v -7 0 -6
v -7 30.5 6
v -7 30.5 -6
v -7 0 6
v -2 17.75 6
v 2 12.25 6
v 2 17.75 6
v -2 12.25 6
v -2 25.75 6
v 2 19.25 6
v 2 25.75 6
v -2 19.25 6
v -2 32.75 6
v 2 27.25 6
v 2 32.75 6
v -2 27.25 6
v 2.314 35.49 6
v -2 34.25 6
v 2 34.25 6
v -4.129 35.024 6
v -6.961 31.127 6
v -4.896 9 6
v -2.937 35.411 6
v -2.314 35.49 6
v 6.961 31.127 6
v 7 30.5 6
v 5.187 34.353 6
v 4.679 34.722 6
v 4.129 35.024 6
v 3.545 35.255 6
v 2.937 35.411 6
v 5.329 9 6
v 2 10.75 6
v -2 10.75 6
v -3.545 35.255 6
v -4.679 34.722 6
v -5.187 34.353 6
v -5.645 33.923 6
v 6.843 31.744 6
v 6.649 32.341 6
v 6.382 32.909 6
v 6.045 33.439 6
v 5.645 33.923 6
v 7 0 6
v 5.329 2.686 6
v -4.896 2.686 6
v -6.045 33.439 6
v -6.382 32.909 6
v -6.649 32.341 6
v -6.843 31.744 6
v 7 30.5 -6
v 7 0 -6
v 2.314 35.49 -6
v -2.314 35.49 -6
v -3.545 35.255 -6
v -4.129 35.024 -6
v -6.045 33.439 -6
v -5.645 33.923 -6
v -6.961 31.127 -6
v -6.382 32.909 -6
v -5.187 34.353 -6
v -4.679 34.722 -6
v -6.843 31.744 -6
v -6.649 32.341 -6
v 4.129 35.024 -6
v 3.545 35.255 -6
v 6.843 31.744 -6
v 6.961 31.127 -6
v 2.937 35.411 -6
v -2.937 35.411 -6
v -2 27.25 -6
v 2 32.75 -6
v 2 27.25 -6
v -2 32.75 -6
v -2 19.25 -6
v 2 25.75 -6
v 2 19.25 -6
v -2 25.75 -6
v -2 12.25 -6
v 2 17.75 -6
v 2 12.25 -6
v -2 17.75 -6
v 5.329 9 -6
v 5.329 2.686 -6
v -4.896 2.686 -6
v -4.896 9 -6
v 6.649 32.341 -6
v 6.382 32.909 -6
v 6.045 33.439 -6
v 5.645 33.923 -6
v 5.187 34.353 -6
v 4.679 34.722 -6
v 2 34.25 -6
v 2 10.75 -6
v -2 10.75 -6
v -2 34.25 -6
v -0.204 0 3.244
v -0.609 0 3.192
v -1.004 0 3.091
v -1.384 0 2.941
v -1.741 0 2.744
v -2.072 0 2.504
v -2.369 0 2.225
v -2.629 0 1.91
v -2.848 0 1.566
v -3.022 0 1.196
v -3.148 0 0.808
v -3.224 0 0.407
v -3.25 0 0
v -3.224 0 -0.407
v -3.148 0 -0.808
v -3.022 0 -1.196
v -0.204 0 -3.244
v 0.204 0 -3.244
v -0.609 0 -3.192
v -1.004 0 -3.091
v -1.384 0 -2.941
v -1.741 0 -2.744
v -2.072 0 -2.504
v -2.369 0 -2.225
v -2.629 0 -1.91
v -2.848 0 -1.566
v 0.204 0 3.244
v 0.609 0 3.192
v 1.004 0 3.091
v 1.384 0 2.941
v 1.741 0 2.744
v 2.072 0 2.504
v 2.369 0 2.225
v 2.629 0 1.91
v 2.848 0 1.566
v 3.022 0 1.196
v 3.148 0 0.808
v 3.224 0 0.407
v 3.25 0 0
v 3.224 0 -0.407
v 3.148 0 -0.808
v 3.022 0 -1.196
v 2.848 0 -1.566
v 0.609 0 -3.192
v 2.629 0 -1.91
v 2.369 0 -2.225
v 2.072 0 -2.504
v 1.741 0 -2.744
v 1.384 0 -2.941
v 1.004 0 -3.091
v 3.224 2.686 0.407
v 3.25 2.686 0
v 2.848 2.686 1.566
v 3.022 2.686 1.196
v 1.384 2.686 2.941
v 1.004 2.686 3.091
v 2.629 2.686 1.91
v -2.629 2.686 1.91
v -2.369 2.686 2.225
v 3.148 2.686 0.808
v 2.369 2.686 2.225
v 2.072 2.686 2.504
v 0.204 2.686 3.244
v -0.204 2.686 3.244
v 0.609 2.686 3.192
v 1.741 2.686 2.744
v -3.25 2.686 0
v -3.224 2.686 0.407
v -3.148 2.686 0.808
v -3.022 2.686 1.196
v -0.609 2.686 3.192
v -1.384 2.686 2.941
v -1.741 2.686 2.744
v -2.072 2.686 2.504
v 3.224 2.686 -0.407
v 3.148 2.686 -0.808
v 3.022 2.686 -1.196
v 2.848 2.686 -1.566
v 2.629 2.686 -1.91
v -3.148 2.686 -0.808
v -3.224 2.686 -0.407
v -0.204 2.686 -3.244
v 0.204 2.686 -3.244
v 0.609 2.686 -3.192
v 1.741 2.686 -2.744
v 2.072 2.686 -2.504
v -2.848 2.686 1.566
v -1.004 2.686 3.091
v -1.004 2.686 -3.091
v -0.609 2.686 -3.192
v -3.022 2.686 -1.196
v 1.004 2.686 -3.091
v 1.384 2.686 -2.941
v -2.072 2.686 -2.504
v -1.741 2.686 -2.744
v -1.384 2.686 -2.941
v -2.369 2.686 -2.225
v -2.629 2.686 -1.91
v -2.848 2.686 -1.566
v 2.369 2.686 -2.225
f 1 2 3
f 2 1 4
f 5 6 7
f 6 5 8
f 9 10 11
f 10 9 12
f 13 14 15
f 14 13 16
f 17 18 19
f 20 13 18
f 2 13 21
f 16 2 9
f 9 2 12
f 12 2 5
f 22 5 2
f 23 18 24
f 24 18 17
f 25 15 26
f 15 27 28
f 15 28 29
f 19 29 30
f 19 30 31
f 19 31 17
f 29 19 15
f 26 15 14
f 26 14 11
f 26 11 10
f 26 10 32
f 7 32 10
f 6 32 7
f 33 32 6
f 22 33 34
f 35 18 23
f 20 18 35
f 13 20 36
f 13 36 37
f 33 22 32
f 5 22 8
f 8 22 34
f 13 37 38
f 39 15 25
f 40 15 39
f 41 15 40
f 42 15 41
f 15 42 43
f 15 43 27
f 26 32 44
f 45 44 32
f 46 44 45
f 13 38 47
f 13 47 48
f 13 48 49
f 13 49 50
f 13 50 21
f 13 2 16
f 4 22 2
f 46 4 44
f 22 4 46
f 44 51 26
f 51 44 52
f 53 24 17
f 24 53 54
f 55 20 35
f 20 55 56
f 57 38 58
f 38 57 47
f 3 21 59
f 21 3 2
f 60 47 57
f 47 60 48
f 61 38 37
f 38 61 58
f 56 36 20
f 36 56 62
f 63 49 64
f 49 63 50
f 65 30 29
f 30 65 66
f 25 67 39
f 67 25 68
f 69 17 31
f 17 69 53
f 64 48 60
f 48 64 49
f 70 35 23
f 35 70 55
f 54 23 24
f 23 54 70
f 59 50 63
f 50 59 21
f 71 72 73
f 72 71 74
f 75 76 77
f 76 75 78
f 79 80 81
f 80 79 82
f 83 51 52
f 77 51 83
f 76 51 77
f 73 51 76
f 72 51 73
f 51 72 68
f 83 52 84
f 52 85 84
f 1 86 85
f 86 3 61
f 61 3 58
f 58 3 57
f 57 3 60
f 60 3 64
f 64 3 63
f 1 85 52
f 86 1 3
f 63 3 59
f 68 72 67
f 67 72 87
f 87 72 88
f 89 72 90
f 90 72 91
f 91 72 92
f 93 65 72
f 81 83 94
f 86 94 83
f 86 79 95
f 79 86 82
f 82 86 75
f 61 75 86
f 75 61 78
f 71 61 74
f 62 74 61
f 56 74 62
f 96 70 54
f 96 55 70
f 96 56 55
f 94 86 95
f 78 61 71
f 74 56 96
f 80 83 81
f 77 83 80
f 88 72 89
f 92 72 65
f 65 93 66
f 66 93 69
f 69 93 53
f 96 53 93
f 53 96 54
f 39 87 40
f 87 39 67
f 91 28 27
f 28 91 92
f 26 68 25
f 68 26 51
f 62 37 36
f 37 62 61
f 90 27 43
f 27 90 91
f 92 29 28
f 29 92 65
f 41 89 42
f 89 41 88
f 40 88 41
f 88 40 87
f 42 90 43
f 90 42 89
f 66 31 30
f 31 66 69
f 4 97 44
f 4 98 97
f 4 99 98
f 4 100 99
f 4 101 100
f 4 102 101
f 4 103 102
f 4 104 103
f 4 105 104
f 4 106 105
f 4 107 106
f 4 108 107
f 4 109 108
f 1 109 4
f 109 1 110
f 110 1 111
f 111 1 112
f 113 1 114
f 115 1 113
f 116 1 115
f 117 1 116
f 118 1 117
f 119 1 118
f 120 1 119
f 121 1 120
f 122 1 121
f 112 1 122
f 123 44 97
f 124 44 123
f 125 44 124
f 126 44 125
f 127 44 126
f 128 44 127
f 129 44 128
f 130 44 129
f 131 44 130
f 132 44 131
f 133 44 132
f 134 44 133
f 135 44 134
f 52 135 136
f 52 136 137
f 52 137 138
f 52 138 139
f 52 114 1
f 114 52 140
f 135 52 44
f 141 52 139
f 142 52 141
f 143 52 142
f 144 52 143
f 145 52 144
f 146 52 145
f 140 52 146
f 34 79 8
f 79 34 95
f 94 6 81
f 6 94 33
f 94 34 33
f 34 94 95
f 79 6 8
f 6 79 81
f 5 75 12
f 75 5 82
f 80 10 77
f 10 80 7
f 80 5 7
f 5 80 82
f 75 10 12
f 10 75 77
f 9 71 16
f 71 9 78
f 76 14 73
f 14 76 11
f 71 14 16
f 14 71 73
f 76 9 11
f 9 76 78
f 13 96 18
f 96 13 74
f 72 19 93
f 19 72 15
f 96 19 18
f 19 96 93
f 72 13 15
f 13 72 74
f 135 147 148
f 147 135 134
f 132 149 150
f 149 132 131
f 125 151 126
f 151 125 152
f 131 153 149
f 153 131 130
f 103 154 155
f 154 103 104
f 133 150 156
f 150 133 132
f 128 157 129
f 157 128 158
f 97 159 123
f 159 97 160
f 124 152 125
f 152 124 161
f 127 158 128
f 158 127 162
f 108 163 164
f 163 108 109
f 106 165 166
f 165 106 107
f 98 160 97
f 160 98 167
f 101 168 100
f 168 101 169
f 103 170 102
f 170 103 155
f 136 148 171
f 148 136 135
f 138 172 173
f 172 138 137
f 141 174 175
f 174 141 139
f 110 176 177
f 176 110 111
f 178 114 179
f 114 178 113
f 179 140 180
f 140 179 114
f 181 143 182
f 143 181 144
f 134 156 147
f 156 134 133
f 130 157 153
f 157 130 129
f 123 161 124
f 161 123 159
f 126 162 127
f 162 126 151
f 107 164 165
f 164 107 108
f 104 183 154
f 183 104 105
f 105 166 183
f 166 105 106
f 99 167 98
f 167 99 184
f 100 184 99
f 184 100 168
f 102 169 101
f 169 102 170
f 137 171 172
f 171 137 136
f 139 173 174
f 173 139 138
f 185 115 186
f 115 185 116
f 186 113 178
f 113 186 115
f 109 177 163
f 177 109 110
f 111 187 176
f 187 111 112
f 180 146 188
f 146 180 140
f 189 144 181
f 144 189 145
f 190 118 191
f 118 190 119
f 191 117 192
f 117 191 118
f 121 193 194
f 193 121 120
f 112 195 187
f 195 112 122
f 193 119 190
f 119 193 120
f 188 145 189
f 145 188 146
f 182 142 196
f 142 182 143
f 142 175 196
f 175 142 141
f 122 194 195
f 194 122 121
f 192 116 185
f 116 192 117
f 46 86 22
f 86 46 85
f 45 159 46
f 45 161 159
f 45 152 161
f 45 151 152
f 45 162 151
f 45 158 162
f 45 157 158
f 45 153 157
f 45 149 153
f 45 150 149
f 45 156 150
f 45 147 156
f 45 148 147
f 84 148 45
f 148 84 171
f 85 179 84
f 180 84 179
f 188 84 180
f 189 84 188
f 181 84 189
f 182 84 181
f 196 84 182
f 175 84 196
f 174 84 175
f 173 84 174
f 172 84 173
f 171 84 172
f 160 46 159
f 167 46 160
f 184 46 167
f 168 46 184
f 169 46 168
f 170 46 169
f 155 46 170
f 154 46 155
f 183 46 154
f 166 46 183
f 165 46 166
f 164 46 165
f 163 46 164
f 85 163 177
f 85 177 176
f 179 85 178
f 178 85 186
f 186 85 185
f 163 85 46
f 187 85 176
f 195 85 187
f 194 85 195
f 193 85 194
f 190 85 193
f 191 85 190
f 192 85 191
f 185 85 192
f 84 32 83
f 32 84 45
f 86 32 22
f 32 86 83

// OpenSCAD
$fn = 50;


difference() {
	union() {
		translate(v = [0, 21.0000000000, -6.0000000000]) {
			rotate(a = [0, 0, 0]) {
				hull() {
					translate(v = [-2.0000000000, 9.5000000000, 0]) {
						rotate(a = [0, 0, 0]) {
							translate(v = [0, 0, 0]) {
								rotate(a = [0, 0, 0]) {
									cylinder(h = 12, r = 5);
								}
							}
						}
					}
					translate(v = [2.0000000000, 9.5000000000, 0]) {
						rotate(a = [0, 0, 0]) {
							translate(v = [0, 0, 0]) {
								rotate(a = [0, 0, 0]) {
									cylinder(h = 12, r = 5);
								}
							}
						}
					}
					translate(v = [-2.0000000000, -9.5000000000, 0]) {
						rotate(a = [0, 0, 0]) {
							translate(v = [0, 0, 0]) {
								rotate(a = [0, 0, 0]) {
									cylinder(h = 12, r = 5);
								}
							}
						}
					}
					translate(v = [2.0000000000, -9.5000000000, 0]) {
						rotate(a = [0, 0, 0]) {
							translate(v = [0, 0, 0]) {
								rotate(a = [0, 0, 0]) {
									cylinder(h = 12, r = 5);
								}
							}
						}
					}
				}
			}
		}
		translate(v = [-7.0000000000, 0, -6.0000000000]) {
			rotate(a = [0, 0, 0]) {
				cube(size = [14, 13.5000000000, 12]);
			}
		}
	}
	union() {
		translate(v = [-2.0000000000, 10.7500000000, -50]) {
			rotate(a = [0, 0, 0]) {
				cube(size = [4, 1.5000000000, 100]);
			}
		}
		translate(v = [-2.0000000000, 17.7500000000, -50]) {
			rotate(a = [0, 0, 0]) {
				cube(size = [4, 1.5000000000, 100]);
			}
		}
		translate(v = [-2.0000000000, 25.7500000000, -50]) {
			rotate(a = [0, 0, 0]) {
				cube(size = [4, 1.5000000000, 100]);
			}
		}
		translate(v = [-2.0000000000, 32.7500000000, -50]) {
			rotate(a = [0, 0, 0]) {
				cube(size = [4, 1.5000000000, 100]);
			}
		}
		translate(v = [0.0000000000, 8, 0]) {
			rotate(a = [90, 0, 0]) {
				cylinder(h = 8, r = 3.2500000000);
			}
		}
		translate(v = [-4.8960138648, 9, -50]) {
			rotate(a = [90, 0, 0]) {
				cube(size = [10.2253032929, 100, 6.3142500000]);
			}
		}
	}
}
